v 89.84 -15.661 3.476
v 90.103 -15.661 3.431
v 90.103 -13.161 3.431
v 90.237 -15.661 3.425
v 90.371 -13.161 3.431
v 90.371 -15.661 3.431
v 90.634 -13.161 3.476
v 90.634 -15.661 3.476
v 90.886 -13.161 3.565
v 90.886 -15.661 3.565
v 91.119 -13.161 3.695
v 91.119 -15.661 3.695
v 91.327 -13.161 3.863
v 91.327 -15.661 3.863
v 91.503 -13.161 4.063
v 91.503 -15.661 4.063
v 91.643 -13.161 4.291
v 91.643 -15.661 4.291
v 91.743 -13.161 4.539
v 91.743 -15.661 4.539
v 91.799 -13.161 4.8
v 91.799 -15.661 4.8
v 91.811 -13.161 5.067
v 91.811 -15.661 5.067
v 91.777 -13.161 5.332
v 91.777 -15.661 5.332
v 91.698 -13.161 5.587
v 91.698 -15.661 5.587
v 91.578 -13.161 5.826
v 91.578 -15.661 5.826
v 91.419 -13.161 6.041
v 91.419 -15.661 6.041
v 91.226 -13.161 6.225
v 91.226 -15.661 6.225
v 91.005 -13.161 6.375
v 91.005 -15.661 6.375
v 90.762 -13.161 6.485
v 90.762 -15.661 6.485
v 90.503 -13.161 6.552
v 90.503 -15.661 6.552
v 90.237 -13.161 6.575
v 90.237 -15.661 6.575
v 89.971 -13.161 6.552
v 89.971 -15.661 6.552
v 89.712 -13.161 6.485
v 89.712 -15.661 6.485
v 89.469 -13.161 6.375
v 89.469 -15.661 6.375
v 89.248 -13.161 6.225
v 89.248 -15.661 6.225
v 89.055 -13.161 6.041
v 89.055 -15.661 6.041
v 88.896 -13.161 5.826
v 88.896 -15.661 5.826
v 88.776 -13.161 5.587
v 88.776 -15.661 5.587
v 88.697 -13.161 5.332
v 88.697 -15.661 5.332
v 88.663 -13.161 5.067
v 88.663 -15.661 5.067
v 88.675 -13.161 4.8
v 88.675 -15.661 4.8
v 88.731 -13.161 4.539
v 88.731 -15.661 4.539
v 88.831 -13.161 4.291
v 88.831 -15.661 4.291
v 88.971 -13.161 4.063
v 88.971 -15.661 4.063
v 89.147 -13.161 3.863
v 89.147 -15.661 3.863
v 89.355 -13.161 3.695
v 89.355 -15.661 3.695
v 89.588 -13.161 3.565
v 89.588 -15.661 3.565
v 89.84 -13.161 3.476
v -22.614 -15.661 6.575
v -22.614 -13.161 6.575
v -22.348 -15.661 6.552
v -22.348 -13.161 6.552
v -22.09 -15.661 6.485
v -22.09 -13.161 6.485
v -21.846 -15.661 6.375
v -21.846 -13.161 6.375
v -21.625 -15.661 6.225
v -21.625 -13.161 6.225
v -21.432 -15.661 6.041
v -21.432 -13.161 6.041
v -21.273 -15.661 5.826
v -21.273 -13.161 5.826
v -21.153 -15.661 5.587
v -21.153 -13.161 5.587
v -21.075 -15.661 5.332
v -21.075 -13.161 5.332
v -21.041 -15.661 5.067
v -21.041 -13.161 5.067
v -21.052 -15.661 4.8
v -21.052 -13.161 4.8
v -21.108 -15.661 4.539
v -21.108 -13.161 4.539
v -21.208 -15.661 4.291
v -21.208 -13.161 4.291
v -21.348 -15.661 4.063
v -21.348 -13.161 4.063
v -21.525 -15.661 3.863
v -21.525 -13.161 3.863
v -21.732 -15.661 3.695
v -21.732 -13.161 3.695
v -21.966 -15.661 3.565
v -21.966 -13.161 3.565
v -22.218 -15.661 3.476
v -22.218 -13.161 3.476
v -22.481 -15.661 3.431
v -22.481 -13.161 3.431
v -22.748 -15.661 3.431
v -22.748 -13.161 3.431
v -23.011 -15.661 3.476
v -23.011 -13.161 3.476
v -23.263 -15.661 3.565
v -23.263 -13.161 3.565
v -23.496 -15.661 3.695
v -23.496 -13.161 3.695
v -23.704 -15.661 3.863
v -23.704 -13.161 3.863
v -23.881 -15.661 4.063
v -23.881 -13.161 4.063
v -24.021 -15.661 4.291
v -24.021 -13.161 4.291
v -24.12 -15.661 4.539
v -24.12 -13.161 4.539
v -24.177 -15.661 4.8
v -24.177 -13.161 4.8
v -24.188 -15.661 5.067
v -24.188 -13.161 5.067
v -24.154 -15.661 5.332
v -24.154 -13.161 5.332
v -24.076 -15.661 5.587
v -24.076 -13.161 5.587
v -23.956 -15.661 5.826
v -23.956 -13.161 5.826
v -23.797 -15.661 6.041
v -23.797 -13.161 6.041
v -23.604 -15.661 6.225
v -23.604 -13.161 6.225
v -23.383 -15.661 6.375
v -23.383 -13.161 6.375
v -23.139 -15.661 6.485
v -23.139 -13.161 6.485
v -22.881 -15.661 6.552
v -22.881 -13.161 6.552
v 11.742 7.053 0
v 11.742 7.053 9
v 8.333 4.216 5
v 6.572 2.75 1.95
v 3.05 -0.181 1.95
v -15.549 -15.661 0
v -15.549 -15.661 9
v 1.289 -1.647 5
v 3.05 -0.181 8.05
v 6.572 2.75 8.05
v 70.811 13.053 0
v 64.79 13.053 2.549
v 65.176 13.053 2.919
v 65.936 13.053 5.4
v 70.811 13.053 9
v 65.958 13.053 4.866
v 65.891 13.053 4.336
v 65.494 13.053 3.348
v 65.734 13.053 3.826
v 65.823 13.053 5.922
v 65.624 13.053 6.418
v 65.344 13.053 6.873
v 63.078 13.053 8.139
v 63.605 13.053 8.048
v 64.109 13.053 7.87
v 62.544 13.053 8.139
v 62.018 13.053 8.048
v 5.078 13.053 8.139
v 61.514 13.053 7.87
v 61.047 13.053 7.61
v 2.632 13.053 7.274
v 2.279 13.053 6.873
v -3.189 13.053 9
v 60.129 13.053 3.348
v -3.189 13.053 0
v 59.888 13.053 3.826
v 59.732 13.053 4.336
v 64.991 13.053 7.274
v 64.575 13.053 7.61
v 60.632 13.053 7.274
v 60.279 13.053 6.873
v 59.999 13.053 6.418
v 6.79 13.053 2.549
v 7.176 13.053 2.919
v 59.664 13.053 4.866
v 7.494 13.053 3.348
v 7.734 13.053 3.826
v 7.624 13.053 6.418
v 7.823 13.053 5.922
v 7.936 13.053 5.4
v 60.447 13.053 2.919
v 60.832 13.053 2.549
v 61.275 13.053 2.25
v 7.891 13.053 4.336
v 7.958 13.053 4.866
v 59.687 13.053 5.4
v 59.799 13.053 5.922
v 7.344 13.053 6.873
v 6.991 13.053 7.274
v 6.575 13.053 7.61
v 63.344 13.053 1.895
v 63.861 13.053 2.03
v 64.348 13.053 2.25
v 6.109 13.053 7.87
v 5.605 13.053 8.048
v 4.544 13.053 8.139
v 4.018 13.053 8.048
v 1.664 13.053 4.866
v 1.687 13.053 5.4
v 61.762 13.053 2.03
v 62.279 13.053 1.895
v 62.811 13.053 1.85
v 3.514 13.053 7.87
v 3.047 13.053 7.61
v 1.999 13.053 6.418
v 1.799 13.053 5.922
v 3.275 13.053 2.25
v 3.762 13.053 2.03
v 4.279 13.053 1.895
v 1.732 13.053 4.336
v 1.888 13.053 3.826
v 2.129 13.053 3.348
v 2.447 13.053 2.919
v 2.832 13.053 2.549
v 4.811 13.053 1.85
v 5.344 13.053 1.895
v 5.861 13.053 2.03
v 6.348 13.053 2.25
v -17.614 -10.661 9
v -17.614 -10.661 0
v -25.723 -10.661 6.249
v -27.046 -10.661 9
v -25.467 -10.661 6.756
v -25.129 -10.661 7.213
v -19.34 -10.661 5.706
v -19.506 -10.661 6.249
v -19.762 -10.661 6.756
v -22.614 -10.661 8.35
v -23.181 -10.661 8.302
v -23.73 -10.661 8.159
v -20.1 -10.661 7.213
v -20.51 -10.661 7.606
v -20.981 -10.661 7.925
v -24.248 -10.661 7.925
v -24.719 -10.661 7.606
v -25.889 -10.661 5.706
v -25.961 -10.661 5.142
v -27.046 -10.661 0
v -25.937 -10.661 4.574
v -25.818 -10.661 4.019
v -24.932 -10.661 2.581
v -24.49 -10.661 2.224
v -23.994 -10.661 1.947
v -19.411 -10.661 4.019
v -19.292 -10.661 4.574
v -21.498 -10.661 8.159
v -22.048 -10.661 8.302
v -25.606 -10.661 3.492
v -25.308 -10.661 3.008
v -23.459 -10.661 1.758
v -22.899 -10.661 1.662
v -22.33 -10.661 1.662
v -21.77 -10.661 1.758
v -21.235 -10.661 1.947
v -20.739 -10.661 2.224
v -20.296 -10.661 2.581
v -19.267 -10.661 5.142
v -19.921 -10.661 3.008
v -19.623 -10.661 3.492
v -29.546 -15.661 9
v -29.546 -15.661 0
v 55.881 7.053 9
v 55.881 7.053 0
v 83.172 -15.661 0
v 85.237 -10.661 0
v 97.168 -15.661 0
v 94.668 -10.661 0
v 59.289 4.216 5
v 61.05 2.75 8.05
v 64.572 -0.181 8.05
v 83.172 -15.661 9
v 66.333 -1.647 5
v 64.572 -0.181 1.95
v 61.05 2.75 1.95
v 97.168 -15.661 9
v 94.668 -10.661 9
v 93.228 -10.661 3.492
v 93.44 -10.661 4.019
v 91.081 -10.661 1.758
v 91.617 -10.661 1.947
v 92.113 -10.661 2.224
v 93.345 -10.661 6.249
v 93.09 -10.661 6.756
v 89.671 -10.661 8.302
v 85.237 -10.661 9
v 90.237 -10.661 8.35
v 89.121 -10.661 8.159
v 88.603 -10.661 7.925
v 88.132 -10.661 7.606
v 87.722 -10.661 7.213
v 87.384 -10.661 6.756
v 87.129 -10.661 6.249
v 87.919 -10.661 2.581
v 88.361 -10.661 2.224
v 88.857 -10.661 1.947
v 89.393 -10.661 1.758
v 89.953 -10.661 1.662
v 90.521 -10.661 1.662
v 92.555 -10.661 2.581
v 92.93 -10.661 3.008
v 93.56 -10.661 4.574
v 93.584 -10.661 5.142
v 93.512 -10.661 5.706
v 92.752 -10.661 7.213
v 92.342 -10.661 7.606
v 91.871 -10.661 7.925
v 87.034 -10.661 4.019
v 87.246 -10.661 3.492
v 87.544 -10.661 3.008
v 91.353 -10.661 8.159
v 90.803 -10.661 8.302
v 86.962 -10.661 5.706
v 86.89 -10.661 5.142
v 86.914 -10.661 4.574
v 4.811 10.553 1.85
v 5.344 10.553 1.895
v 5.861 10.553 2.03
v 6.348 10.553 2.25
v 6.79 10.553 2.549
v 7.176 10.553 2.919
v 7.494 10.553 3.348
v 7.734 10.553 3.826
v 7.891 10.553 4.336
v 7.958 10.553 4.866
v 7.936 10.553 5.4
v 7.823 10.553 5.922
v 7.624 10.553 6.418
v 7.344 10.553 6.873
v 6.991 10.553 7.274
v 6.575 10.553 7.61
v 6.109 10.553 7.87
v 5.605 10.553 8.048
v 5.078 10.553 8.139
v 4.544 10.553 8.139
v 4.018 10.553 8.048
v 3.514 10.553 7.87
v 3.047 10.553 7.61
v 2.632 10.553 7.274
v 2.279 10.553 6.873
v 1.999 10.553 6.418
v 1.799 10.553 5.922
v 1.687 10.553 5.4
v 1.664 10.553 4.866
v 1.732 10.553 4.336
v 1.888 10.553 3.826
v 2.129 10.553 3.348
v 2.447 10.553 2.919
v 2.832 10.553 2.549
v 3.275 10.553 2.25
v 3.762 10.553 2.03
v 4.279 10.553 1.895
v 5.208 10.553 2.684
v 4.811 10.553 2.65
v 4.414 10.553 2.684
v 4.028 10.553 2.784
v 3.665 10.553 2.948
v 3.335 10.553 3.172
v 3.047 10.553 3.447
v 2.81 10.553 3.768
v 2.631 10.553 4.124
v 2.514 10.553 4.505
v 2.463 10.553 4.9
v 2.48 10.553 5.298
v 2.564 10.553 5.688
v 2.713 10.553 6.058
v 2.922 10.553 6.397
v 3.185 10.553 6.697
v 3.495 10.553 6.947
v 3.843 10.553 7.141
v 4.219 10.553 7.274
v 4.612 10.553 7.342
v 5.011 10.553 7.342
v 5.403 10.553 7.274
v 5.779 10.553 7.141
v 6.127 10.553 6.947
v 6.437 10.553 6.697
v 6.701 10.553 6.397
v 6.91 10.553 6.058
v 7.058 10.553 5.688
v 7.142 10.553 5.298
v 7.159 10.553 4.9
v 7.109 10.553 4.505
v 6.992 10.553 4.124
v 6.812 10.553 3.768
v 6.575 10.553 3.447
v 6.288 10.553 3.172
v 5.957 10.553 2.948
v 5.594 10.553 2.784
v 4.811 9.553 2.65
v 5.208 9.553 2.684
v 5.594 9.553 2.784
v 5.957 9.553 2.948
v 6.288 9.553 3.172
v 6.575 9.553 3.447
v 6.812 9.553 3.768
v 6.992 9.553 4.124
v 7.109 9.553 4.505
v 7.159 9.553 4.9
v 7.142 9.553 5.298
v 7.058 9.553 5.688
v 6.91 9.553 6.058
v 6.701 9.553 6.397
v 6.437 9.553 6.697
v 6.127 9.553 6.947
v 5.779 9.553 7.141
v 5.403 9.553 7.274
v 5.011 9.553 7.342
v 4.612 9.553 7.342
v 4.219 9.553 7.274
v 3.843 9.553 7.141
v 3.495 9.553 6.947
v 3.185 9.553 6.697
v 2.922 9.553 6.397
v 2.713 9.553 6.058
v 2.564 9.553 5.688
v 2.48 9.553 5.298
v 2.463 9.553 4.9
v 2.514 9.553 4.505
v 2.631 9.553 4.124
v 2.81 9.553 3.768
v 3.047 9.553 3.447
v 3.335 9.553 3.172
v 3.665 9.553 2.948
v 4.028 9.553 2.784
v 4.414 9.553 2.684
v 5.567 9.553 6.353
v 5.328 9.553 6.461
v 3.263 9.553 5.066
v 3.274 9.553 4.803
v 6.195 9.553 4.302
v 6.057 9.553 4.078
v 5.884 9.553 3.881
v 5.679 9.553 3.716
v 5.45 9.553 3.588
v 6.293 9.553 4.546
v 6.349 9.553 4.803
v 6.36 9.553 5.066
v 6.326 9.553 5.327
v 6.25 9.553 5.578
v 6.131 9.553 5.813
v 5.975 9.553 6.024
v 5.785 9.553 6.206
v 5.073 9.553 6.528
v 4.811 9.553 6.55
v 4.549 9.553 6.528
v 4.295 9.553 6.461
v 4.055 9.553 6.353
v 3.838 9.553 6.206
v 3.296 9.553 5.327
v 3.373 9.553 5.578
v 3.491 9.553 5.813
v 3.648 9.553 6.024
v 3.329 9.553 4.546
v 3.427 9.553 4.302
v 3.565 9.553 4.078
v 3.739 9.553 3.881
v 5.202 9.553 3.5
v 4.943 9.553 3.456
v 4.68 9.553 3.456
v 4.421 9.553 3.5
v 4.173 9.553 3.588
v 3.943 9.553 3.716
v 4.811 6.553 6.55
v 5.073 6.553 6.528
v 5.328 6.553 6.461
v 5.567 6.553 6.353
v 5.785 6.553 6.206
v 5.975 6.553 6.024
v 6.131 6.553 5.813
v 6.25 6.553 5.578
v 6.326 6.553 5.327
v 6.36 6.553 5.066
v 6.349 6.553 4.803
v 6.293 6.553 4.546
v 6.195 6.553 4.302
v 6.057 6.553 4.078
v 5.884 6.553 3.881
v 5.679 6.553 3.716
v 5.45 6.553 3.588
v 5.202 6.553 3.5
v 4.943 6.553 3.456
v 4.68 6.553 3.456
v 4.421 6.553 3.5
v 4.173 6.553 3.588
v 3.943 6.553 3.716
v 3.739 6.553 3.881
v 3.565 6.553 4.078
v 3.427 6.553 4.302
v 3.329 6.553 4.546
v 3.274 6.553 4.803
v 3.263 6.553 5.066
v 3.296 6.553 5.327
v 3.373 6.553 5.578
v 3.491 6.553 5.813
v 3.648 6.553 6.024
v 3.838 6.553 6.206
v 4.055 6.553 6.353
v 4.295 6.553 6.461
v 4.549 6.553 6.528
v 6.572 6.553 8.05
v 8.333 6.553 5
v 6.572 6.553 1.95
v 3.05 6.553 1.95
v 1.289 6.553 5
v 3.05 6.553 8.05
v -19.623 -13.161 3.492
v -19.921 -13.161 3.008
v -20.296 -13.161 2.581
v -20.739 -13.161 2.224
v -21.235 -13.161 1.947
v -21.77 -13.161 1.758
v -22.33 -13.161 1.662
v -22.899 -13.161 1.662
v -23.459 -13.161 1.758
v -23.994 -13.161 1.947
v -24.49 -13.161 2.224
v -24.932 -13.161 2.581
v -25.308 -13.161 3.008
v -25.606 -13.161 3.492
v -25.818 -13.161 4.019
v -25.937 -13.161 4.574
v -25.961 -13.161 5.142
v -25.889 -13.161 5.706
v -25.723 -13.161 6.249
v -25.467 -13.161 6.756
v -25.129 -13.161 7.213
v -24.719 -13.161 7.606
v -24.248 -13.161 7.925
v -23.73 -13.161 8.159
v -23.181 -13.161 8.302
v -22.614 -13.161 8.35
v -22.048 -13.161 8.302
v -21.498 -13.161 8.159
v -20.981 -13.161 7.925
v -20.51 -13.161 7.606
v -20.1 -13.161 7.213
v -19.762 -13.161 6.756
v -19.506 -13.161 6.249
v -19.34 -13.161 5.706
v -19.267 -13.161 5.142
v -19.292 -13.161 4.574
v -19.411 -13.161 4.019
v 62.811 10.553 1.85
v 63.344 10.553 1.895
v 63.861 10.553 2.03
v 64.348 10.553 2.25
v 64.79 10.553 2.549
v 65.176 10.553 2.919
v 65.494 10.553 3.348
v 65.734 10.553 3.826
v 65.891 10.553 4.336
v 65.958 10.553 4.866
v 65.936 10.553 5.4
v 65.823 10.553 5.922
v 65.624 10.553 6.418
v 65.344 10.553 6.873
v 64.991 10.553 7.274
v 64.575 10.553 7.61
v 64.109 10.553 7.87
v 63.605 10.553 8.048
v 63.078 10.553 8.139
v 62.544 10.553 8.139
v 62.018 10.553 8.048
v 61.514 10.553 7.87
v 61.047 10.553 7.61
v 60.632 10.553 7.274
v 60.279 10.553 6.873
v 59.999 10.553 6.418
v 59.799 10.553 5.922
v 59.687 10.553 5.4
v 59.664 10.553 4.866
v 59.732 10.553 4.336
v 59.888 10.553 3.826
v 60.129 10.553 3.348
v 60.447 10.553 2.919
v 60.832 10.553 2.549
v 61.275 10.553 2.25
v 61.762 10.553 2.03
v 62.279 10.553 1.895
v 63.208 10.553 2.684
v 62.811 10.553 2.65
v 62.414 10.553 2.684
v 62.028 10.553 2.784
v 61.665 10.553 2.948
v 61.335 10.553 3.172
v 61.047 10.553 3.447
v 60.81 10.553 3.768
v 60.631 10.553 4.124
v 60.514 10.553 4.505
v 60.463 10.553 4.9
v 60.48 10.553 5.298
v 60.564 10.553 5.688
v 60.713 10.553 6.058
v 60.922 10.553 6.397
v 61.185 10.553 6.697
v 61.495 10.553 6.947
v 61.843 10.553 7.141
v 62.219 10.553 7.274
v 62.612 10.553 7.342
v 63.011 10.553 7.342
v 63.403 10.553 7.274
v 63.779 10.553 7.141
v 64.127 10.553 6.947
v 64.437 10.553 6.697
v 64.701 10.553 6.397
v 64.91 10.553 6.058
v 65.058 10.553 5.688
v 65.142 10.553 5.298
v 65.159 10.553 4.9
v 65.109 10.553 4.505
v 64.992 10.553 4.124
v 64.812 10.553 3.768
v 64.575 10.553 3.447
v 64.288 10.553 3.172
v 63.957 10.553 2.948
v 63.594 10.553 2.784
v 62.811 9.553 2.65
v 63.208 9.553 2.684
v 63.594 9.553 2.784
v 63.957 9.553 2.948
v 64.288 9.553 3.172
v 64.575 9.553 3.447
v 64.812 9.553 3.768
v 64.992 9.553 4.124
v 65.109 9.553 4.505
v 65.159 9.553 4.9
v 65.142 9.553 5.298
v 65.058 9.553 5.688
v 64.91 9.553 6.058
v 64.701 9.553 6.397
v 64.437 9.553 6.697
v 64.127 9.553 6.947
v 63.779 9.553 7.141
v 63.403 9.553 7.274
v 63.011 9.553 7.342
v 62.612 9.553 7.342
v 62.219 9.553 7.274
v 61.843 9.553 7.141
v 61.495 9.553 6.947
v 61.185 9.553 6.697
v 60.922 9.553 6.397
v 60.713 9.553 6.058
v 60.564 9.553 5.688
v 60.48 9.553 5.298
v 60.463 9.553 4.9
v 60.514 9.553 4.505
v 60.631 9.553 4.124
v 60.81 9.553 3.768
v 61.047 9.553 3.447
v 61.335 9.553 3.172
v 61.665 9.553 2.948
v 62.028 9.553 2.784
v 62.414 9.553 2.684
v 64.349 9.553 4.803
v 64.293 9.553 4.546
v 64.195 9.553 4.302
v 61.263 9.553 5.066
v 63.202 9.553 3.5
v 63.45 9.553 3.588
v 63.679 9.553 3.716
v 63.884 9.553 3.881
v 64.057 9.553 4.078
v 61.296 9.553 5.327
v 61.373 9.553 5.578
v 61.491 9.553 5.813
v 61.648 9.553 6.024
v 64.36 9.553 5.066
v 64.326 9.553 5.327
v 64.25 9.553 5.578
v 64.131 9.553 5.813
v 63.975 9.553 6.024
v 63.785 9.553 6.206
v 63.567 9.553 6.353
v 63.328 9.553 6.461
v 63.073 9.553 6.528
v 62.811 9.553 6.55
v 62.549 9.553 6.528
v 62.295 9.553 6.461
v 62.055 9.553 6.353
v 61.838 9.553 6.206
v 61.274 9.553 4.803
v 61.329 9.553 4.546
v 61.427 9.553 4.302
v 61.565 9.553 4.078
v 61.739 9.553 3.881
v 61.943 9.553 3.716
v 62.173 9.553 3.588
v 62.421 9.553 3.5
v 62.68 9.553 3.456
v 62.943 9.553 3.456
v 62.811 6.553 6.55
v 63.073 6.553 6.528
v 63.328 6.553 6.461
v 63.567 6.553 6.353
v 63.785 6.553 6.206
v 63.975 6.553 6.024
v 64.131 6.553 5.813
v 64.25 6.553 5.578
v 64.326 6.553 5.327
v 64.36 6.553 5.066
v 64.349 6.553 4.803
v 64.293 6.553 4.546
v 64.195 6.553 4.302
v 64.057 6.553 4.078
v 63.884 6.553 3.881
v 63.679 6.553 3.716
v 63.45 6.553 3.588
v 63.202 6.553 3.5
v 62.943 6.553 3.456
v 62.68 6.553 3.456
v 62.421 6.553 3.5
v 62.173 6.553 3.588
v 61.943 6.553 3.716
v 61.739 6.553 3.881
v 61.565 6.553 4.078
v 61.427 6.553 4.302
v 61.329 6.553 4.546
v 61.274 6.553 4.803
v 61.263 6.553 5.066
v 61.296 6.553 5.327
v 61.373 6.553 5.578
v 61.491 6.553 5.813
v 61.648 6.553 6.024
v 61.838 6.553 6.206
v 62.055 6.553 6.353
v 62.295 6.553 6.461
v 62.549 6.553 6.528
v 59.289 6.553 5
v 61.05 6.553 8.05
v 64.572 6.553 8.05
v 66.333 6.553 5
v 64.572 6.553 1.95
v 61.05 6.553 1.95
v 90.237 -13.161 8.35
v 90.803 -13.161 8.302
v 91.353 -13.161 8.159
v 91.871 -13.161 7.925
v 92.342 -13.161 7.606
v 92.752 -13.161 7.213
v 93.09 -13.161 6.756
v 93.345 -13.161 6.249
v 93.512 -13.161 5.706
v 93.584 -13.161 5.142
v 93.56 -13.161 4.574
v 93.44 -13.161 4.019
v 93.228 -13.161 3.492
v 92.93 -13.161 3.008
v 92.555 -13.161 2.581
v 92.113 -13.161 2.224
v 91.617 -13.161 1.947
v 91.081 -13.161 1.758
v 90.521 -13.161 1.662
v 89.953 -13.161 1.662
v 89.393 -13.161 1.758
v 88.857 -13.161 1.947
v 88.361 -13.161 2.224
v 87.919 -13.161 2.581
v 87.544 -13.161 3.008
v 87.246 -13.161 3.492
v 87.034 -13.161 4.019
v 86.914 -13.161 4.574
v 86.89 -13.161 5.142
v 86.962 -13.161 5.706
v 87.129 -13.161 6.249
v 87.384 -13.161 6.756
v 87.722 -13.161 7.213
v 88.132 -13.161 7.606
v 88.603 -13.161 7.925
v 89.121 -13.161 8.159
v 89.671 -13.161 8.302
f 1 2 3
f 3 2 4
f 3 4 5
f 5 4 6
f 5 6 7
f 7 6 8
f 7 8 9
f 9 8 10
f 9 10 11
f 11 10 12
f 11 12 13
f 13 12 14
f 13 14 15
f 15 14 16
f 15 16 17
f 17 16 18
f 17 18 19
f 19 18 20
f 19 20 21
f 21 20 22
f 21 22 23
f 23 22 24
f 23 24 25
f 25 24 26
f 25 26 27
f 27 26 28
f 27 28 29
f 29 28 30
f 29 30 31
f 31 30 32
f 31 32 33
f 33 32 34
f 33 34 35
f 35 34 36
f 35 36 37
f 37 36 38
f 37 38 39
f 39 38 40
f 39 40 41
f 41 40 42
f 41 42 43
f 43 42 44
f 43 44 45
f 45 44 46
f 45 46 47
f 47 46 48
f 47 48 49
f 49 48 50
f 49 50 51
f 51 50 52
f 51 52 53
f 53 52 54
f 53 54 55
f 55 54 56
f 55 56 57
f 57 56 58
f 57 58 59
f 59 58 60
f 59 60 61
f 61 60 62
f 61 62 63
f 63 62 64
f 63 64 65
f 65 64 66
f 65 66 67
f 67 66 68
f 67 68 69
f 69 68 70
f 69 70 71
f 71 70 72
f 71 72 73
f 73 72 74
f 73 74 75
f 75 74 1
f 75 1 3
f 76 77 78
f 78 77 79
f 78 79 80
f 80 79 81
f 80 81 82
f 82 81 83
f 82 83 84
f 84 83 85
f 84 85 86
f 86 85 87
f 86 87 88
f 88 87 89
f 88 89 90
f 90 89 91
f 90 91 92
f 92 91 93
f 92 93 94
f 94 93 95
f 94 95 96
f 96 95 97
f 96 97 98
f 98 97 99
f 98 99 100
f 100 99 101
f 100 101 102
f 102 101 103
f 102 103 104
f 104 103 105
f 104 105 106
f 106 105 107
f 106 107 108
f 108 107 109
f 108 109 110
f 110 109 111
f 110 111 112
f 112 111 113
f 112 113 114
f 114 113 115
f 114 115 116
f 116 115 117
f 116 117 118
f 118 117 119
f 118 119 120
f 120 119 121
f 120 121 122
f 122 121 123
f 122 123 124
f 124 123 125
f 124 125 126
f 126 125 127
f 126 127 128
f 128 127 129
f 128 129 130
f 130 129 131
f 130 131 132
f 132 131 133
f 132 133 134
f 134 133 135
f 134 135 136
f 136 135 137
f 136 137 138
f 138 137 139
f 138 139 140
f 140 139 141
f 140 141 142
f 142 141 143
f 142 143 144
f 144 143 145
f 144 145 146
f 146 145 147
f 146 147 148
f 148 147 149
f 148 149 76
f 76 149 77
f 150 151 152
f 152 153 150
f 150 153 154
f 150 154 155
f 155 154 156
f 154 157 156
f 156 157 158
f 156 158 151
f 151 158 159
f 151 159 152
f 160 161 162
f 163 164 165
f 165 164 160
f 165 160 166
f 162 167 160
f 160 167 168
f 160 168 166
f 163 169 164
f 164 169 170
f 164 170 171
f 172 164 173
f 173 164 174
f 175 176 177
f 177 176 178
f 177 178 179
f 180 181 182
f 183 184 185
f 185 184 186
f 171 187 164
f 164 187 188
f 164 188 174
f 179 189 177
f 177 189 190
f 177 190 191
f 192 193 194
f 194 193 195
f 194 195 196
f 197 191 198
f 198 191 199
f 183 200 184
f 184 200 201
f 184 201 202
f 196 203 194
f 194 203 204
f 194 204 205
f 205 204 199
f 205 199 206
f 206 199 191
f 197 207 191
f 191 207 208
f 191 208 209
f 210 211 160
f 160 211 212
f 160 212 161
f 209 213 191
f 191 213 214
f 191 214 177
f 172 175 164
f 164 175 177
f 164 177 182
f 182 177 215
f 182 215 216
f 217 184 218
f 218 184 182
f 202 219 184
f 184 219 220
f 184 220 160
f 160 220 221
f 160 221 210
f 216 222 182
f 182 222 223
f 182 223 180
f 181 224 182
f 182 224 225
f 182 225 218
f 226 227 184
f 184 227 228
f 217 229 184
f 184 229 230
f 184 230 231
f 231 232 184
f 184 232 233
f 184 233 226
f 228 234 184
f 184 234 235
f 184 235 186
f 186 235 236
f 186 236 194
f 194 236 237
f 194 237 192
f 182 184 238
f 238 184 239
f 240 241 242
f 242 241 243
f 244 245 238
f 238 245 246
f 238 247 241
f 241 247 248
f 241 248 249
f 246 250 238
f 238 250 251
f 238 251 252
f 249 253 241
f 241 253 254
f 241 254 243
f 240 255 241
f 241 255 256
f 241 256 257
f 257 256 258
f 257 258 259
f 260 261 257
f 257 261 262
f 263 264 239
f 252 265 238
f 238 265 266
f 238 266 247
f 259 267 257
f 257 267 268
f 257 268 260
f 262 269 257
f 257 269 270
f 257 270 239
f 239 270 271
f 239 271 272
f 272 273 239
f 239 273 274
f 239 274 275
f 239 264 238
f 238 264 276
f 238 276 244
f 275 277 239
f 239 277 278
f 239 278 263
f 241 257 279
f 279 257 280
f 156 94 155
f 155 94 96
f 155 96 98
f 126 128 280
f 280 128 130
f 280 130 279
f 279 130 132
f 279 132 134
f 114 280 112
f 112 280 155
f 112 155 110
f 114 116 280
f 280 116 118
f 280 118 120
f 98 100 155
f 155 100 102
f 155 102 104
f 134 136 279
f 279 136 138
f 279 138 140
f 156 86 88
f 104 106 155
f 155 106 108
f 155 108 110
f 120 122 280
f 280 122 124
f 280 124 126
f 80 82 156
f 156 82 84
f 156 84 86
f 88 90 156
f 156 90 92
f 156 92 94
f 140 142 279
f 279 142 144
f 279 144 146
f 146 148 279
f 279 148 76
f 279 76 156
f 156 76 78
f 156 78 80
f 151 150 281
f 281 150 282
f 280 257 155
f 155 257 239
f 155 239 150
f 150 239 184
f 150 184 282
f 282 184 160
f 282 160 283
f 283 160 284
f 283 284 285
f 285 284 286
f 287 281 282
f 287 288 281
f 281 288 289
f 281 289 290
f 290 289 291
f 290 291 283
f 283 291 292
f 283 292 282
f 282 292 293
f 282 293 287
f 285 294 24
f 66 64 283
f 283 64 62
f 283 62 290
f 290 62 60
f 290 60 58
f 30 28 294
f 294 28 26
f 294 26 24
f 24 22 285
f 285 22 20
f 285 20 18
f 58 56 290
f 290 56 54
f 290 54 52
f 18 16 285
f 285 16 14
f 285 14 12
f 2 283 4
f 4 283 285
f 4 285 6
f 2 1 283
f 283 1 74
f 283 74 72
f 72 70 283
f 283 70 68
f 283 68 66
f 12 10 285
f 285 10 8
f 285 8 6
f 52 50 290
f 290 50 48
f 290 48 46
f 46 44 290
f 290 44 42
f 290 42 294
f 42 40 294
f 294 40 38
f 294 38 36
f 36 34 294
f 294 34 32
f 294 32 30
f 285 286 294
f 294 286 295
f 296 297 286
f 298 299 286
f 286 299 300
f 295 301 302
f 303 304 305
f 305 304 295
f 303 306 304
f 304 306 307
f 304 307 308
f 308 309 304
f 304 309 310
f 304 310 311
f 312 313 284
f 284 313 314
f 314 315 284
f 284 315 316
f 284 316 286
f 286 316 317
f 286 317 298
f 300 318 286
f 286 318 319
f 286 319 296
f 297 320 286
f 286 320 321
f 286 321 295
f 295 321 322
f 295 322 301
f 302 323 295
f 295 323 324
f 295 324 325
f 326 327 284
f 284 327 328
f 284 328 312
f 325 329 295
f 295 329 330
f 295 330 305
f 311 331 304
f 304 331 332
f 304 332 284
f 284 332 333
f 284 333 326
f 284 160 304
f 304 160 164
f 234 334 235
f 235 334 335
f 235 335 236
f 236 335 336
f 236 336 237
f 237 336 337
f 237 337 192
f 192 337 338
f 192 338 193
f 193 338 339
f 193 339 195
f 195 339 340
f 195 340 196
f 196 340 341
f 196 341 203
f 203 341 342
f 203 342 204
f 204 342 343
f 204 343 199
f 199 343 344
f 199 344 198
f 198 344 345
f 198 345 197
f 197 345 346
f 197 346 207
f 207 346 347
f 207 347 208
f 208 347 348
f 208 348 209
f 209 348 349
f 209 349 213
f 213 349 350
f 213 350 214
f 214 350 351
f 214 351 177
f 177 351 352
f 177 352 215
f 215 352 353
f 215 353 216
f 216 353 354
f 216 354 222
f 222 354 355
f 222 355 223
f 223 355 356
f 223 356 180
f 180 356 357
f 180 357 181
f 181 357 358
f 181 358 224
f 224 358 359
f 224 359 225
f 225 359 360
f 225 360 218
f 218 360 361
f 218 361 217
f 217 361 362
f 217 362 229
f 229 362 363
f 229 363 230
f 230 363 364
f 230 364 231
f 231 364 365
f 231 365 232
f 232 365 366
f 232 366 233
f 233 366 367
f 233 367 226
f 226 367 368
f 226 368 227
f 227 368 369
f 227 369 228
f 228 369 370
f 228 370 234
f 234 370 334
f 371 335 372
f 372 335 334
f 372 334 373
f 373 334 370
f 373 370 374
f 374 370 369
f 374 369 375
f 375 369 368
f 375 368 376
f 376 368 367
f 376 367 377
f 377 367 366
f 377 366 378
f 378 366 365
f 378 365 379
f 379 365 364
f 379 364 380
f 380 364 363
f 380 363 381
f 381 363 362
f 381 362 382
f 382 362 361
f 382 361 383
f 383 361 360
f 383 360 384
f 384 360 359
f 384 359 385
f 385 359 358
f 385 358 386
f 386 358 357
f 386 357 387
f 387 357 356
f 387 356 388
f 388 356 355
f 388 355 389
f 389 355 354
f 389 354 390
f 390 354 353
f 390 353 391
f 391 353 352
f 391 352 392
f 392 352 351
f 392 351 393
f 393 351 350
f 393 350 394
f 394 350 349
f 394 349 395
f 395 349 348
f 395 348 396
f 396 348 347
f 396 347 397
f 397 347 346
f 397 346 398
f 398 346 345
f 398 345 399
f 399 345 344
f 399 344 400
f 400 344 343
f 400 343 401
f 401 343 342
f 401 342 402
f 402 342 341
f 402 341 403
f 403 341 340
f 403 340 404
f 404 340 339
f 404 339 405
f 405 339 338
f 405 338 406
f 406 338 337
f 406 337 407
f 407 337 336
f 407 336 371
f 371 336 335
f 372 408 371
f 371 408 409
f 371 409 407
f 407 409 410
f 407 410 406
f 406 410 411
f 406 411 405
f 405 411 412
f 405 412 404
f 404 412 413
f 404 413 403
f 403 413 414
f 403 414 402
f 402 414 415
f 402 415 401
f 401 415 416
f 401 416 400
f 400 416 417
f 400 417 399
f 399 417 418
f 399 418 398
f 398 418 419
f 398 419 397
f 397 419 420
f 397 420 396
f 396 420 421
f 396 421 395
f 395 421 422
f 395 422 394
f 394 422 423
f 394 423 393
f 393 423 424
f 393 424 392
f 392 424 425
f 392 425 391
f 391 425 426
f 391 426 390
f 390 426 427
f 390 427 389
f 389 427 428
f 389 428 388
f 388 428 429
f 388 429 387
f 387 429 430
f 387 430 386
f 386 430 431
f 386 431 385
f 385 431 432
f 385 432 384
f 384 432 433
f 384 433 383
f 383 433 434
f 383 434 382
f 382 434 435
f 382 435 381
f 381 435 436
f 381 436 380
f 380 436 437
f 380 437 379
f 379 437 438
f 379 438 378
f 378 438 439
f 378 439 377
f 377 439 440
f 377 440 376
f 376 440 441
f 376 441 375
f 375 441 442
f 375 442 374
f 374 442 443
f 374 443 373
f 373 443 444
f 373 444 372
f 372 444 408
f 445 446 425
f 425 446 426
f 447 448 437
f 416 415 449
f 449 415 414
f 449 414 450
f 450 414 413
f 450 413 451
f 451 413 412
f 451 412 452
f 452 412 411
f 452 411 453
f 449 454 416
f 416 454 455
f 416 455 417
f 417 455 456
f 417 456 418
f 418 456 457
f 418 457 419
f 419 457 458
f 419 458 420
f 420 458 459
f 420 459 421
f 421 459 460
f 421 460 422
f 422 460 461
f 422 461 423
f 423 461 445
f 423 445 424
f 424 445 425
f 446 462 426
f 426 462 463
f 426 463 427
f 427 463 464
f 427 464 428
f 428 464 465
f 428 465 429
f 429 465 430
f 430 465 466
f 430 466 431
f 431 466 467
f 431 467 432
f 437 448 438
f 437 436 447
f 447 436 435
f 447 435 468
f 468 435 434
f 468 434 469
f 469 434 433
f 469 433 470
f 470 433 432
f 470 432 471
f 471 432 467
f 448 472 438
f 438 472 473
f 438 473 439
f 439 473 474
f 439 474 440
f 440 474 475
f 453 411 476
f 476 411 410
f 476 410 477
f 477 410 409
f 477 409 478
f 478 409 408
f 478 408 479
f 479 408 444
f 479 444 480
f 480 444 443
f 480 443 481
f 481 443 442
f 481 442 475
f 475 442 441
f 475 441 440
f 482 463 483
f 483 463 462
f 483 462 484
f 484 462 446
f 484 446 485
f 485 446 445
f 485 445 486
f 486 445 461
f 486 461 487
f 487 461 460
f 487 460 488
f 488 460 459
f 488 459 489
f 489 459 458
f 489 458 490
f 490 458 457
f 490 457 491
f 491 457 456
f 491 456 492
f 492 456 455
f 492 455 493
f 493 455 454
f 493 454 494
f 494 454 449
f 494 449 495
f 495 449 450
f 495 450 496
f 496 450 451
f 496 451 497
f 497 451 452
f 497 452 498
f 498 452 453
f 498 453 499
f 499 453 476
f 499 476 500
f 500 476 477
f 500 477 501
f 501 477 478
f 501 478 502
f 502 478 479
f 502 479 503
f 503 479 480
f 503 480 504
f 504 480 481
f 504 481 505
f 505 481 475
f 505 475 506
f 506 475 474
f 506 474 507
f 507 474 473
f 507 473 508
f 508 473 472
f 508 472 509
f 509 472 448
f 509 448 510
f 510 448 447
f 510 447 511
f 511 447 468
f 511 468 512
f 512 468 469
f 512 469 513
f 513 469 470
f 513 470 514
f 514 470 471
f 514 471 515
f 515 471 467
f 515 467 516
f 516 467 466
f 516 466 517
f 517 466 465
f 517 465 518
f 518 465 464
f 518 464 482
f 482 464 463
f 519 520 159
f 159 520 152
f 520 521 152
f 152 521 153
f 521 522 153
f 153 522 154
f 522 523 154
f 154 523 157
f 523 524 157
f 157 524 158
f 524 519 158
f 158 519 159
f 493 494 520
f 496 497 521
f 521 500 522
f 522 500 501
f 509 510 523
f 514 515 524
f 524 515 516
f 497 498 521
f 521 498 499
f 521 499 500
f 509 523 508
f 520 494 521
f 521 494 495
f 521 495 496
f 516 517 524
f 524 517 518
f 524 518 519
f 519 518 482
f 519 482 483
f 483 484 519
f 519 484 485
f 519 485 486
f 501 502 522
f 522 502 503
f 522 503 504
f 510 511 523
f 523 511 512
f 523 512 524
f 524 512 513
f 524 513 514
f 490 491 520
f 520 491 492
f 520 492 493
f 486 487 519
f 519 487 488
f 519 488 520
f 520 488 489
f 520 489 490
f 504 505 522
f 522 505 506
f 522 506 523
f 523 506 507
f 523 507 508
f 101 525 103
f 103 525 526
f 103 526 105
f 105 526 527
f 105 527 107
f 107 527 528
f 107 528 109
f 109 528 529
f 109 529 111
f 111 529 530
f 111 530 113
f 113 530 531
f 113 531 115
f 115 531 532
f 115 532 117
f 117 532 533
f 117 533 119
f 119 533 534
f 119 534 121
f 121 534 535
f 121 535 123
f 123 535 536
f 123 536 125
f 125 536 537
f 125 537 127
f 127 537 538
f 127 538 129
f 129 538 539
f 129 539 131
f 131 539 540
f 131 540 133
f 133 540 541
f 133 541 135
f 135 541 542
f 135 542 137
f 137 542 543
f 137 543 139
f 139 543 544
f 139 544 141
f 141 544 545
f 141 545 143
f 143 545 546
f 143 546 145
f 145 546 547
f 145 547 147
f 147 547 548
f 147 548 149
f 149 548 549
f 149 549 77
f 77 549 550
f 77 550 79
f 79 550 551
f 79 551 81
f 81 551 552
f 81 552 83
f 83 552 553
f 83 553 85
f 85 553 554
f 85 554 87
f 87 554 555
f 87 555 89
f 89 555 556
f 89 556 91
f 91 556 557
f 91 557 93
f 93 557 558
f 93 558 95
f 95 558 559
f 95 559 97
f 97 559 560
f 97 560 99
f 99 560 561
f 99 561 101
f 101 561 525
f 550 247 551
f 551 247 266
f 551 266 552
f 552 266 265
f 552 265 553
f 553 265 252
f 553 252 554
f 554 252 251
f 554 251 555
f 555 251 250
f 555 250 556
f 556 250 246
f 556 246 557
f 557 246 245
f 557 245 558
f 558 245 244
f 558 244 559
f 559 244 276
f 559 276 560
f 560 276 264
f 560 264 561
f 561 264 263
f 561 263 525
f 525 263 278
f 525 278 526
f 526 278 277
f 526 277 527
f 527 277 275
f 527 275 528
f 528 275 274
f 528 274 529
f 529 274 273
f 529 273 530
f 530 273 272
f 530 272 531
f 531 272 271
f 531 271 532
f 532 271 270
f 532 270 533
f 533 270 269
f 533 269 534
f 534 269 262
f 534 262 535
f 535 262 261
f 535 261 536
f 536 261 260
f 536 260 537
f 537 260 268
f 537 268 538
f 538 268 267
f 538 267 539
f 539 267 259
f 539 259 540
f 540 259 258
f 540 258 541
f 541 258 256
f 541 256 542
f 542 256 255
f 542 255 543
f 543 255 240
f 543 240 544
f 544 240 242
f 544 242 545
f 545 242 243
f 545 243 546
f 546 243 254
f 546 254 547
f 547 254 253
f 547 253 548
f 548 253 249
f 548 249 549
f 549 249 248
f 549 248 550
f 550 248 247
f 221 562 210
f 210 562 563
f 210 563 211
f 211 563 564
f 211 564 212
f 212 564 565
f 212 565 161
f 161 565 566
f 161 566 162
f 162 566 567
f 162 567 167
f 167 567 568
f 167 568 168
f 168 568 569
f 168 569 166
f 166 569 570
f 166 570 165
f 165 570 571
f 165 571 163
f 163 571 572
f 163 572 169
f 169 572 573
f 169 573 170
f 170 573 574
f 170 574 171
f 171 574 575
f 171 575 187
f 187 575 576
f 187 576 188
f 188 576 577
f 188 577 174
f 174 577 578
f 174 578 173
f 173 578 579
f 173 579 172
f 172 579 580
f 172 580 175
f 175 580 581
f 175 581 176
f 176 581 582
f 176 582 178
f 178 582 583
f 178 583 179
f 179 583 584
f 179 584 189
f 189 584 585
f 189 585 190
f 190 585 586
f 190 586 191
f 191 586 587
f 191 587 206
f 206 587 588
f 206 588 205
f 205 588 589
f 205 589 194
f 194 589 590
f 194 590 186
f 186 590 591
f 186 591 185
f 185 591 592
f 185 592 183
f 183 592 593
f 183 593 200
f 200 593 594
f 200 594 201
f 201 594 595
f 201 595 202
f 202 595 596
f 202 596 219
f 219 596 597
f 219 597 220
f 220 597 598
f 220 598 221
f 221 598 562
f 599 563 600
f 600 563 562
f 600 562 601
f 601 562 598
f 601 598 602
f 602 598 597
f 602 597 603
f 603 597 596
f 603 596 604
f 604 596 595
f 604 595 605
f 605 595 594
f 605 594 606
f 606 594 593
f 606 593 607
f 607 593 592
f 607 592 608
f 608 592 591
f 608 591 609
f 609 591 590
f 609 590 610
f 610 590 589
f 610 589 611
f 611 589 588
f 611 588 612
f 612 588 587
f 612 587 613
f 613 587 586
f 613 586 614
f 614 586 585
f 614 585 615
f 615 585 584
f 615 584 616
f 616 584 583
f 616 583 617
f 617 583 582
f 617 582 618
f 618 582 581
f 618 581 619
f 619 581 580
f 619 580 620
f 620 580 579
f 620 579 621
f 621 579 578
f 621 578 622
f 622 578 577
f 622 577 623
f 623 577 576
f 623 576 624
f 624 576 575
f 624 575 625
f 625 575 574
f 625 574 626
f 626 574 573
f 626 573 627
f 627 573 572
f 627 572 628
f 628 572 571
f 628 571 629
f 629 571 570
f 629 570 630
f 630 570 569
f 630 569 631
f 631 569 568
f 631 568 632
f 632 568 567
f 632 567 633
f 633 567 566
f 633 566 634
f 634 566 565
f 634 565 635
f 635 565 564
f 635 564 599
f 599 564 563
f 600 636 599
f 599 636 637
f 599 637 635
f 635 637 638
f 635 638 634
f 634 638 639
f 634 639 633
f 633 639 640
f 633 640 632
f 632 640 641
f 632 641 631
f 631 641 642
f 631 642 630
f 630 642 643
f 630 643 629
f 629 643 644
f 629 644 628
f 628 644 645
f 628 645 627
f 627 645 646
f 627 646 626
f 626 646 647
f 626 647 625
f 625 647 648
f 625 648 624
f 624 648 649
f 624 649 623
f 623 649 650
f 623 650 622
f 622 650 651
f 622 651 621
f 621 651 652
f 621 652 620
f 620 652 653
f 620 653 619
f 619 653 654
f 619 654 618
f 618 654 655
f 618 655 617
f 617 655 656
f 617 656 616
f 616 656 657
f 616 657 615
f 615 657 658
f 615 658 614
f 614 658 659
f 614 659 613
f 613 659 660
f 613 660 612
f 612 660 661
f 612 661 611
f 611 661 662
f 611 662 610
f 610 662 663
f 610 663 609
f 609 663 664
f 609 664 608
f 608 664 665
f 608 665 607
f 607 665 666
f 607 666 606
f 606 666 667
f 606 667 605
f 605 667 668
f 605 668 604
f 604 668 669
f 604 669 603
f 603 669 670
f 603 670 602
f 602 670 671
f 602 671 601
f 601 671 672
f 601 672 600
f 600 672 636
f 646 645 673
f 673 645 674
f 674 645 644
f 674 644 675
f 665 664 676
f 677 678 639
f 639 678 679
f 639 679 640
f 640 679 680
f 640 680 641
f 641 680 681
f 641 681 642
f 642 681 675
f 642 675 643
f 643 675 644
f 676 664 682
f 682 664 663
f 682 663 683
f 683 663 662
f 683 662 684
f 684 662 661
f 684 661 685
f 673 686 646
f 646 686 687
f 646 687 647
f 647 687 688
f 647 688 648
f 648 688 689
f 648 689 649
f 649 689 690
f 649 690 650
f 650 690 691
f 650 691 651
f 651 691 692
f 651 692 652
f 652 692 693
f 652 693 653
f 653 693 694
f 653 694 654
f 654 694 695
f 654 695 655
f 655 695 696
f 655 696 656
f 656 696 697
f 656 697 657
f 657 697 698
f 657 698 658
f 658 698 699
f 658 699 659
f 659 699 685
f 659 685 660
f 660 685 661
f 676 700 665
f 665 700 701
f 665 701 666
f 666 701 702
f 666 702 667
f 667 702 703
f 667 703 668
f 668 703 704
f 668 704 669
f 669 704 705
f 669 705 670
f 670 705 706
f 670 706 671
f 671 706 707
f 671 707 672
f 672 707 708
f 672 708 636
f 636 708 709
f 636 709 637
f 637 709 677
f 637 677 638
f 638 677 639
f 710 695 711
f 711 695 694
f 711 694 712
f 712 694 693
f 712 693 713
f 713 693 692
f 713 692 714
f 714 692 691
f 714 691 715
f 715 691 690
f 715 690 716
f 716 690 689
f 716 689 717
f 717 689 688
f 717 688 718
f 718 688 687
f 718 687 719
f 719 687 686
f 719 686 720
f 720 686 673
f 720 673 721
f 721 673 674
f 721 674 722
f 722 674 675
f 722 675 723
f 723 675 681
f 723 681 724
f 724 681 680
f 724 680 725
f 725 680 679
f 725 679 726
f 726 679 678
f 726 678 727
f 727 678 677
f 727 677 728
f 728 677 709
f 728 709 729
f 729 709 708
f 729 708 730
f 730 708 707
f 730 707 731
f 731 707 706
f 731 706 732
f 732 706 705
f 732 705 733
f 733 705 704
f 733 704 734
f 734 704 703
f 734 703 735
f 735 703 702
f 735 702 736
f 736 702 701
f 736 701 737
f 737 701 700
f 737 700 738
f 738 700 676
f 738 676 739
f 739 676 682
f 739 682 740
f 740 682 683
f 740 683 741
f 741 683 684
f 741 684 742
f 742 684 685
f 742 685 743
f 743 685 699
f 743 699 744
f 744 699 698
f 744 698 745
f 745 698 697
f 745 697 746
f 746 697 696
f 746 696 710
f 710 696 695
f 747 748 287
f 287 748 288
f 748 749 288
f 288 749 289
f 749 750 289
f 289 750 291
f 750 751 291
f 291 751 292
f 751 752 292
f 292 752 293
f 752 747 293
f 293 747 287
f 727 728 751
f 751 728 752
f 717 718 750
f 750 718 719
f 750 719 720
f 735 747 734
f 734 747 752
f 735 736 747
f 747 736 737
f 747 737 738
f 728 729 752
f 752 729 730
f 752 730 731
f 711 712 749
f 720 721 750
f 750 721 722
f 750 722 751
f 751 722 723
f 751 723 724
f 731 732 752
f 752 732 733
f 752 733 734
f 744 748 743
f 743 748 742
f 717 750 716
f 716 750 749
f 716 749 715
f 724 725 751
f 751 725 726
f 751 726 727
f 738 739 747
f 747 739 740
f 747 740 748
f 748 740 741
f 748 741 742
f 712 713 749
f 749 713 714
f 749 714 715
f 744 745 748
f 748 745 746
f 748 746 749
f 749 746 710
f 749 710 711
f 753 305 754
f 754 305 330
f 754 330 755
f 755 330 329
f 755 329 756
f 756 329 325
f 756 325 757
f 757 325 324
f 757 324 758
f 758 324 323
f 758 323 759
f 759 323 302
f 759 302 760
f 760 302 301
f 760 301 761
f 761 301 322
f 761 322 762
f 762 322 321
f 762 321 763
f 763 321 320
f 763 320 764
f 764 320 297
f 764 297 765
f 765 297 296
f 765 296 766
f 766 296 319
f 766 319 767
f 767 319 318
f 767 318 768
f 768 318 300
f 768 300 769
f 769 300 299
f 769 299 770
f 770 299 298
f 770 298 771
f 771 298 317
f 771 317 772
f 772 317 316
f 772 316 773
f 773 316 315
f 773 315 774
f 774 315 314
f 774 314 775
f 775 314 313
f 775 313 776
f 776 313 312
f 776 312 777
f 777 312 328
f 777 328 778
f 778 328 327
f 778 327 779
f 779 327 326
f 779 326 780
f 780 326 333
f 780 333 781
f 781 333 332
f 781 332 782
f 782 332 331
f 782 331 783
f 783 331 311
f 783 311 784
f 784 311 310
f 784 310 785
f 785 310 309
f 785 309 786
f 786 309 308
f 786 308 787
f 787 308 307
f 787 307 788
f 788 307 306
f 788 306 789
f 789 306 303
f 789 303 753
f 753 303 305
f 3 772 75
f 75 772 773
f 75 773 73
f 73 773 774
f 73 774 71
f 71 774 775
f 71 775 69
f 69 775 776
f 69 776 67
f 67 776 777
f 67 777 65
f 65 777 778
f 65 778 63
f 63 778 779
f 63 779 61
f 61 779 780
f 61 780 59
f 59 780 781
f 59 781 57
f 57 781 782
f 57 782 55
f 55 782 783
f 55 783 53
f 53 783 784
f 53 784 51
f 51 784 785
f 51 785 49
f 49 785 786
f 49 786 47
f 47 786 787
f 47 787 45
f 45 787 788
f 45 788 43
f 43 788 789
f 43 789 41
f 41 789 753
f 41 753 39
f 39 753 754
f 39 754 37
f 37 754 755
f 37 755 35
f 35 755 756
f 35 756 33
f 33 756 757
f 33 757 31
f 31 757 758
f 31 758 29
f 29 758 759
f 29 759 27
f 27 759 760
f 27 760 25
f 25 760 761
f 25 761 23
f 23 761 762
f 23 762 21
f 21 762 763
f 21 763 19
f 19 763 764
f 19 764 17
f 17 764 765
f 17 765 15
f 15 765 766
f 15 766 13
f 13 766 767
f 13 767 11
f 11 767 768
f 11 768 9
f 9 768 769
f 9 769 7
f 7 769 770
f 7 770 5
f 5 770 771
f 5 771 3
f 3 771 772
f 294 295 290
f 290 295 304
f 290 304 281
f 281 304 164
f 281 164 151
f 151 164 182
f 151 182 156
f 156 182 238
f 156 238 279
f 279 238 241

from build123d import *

# Parameters (mm, degrees)
EXTRUDE_1_DEPTH     = 10
SKETCH_7_R          = 1.55
CUT_EXTRUDE_1_DEPTH = 26.214157215
CUT_EXTRUDE_2_DEPTH = 8.5
SKETCH_10_R         = 1.575
CUT_EXTRUDE_4_DEPTH = 12
SKETCH_11_R         = 3.35
CUT_EXTRUDE_5_DEPTH = 2.5
SKETCH_12_W         = 126.714157214
SKETCH_12_H         = 1
CUT_EXTRUDE_6_DEPTH = 29.714157215


with BuildPart() as part:
    # 草图1 → 凸台-拉伸1 (new body)
    with BuildSketch(Plane.XY):
        Polygon((-3.188712924, 13.052848472), (33.811287076, 13.052848472), (33.811287076, 7.052848472), (15.60198174, 7.052848472), (11.74198174, 7.052848472), (-15.549299656, -15.661308743), (-23.688712924, -15.661308743), (-27.545791531, -15.661308743), (-29.545791531, -15.661308743), (-27.045791531, -10.661308743), (-25.045791531, -10.661308743), (-17.614428715, -10.661308743), align=None)
    extrude_1 = extrude(amount=EXTRUDE_1_DEPTH)

    # 镜向1: 凸台-拉伸1 across plane
    add(extrude_1.mirror(Plane(origin=(33.811287076, 13.052848472, 10), x_dir=(0, 0, 1), z_dir=(-1, 0, 0))))

    # 草图5 → 切除-旋转7 (revolve, cut)
    with BuildSketch(Plane.XY.offset(5)):
        Polygon((7.961287076, 13.052848472), (7.961287076, 10.552848472), (7.161287076, 10.552848472), (7.161287076, 9.552848472), (6.361287076, 9.552848472), (4.811287076, 9.552848472), (4.811287076, 13.052848472), align=None)
    cut_revolve_7 = revolve(axis=Axis((4.811287076, 9.552848472, 5), (0, 1, 0)), mode=Mode.SUBTRACT)

    # 草图7 → 切除-拉伸1 (cut, through all)
    with BuildSketch(Plane(origin=(0, 9.552848472, 0), x_dir=(1, 0, 0), z_dir=(0, 1, 0))):
        with Locations((4.811287076, -5)):
            Circle(SKETCH_7_R)
    cut_extrude_1 = extrude(amount=-CUT_EXTRUDE_1_DEPTH, mode=Mode.SUBTRACT)

    # 草图8 → 切除-拉伸2 (cut)
    with BuildSketch(Plane(origin=(0, -1.947151528, 0), x_dir=(1, 0, 0), z_dir=(0, 1, 0))):
        Polygon((8.333123718, -5), (6.572205397, -1.95), (3.050368755, -1.95), (1.289450434, -5), (3.050368755, -8.05), (6.572205397, -8.05), align=None)
    cut_extrude_2 = extrude(amount=CUT_EXTRUDE_2_DEPTH, mode=Mode.SUBTRACT)

    # 草图10 → 切除-拉伸4 (cut)
    with BuildSketch(Plane(origin=(0, -10.661308743, 0), x_dir=(1, 0, 0), z_dir=(0, 1, 0))):
        with Locations((-22.614428715, -5)):
            Circle(SKETCH_10_R)
    cut_extrude_4 = extrude(amount=-CUT_EXTRUDE_4_DEPTH, mode=Mode.SUBTRACT)

    # 草图11 → 切除-拉伸5 (cut)
    with BuildSketch(Plane(origin=(0, -10.661308743, 0), x_dir=(1, 0, 0), z_dir=(0, 1, 0))):
        with Locations((-22.614428715, -5)):
            Circle(SKETCH_11_R)
    cut_extrude_5 = extrude(amount=-CUT_EXTRUDE_5_DEPTH, mode=Mode.SUBTRACT)

    # 镜向2: 切除-旋转7, 切除-拉伸1, 切除-拉伸2, 切除-拉伸4, 切除-拉伸5 across plane
    add(cut_revolve_7.mirror(Plane(origin=(33.811287076, 0, 0), x_dir=(0, 0, 1), z_dir=(1, 0, 0))), mode=Mode.SUBTRACT)
    add(cut_extrude_1.mirror(Plane(origin=(33.811287076, 0, 0), x_dir=(0, 0, 1), z_dir=(1, 0, 0))), mode=Mode.SUBTRACT)
    add(cut_extrude_2.mirror(Plane(origin=(33.811287076, 0, 0), x_dir=(0, 0, 1), z_dir=(1, 0, 0))), mode=Mode.SUBTRACT)
    add(cut_extrude_4.mirror(Plane(origin=(33.811287076, 0, 0), x_dir=(0, 0, 1), z_dir=(1, 0, 0))), mode=Mode.SUBTRACT)
    add(cut_extrude_5.mirror(Plane(origin=(33.811287076, 0, 0), x_dir=(0, 0, 1), z_dir=(1, 0, 0))), mode=Mode.SUBTRACT)

    # 草图12 → 切除-拉伸6 (cut, through all)
    with BuildSketch(Plane(origin=(0, 13.052848472, 0), x_dir=(1, 0, 0), z_dir=(0, 1, 0))):
        with Locations((33.811287076, -9.5)):
            Rectangle(SKETCH_12_W, SKETCH_12_H)
    extrude(amount=-CUT_EXTRUDE_6_DEPTH, mode=Mode.SUBTRACT)


solid = part.part
